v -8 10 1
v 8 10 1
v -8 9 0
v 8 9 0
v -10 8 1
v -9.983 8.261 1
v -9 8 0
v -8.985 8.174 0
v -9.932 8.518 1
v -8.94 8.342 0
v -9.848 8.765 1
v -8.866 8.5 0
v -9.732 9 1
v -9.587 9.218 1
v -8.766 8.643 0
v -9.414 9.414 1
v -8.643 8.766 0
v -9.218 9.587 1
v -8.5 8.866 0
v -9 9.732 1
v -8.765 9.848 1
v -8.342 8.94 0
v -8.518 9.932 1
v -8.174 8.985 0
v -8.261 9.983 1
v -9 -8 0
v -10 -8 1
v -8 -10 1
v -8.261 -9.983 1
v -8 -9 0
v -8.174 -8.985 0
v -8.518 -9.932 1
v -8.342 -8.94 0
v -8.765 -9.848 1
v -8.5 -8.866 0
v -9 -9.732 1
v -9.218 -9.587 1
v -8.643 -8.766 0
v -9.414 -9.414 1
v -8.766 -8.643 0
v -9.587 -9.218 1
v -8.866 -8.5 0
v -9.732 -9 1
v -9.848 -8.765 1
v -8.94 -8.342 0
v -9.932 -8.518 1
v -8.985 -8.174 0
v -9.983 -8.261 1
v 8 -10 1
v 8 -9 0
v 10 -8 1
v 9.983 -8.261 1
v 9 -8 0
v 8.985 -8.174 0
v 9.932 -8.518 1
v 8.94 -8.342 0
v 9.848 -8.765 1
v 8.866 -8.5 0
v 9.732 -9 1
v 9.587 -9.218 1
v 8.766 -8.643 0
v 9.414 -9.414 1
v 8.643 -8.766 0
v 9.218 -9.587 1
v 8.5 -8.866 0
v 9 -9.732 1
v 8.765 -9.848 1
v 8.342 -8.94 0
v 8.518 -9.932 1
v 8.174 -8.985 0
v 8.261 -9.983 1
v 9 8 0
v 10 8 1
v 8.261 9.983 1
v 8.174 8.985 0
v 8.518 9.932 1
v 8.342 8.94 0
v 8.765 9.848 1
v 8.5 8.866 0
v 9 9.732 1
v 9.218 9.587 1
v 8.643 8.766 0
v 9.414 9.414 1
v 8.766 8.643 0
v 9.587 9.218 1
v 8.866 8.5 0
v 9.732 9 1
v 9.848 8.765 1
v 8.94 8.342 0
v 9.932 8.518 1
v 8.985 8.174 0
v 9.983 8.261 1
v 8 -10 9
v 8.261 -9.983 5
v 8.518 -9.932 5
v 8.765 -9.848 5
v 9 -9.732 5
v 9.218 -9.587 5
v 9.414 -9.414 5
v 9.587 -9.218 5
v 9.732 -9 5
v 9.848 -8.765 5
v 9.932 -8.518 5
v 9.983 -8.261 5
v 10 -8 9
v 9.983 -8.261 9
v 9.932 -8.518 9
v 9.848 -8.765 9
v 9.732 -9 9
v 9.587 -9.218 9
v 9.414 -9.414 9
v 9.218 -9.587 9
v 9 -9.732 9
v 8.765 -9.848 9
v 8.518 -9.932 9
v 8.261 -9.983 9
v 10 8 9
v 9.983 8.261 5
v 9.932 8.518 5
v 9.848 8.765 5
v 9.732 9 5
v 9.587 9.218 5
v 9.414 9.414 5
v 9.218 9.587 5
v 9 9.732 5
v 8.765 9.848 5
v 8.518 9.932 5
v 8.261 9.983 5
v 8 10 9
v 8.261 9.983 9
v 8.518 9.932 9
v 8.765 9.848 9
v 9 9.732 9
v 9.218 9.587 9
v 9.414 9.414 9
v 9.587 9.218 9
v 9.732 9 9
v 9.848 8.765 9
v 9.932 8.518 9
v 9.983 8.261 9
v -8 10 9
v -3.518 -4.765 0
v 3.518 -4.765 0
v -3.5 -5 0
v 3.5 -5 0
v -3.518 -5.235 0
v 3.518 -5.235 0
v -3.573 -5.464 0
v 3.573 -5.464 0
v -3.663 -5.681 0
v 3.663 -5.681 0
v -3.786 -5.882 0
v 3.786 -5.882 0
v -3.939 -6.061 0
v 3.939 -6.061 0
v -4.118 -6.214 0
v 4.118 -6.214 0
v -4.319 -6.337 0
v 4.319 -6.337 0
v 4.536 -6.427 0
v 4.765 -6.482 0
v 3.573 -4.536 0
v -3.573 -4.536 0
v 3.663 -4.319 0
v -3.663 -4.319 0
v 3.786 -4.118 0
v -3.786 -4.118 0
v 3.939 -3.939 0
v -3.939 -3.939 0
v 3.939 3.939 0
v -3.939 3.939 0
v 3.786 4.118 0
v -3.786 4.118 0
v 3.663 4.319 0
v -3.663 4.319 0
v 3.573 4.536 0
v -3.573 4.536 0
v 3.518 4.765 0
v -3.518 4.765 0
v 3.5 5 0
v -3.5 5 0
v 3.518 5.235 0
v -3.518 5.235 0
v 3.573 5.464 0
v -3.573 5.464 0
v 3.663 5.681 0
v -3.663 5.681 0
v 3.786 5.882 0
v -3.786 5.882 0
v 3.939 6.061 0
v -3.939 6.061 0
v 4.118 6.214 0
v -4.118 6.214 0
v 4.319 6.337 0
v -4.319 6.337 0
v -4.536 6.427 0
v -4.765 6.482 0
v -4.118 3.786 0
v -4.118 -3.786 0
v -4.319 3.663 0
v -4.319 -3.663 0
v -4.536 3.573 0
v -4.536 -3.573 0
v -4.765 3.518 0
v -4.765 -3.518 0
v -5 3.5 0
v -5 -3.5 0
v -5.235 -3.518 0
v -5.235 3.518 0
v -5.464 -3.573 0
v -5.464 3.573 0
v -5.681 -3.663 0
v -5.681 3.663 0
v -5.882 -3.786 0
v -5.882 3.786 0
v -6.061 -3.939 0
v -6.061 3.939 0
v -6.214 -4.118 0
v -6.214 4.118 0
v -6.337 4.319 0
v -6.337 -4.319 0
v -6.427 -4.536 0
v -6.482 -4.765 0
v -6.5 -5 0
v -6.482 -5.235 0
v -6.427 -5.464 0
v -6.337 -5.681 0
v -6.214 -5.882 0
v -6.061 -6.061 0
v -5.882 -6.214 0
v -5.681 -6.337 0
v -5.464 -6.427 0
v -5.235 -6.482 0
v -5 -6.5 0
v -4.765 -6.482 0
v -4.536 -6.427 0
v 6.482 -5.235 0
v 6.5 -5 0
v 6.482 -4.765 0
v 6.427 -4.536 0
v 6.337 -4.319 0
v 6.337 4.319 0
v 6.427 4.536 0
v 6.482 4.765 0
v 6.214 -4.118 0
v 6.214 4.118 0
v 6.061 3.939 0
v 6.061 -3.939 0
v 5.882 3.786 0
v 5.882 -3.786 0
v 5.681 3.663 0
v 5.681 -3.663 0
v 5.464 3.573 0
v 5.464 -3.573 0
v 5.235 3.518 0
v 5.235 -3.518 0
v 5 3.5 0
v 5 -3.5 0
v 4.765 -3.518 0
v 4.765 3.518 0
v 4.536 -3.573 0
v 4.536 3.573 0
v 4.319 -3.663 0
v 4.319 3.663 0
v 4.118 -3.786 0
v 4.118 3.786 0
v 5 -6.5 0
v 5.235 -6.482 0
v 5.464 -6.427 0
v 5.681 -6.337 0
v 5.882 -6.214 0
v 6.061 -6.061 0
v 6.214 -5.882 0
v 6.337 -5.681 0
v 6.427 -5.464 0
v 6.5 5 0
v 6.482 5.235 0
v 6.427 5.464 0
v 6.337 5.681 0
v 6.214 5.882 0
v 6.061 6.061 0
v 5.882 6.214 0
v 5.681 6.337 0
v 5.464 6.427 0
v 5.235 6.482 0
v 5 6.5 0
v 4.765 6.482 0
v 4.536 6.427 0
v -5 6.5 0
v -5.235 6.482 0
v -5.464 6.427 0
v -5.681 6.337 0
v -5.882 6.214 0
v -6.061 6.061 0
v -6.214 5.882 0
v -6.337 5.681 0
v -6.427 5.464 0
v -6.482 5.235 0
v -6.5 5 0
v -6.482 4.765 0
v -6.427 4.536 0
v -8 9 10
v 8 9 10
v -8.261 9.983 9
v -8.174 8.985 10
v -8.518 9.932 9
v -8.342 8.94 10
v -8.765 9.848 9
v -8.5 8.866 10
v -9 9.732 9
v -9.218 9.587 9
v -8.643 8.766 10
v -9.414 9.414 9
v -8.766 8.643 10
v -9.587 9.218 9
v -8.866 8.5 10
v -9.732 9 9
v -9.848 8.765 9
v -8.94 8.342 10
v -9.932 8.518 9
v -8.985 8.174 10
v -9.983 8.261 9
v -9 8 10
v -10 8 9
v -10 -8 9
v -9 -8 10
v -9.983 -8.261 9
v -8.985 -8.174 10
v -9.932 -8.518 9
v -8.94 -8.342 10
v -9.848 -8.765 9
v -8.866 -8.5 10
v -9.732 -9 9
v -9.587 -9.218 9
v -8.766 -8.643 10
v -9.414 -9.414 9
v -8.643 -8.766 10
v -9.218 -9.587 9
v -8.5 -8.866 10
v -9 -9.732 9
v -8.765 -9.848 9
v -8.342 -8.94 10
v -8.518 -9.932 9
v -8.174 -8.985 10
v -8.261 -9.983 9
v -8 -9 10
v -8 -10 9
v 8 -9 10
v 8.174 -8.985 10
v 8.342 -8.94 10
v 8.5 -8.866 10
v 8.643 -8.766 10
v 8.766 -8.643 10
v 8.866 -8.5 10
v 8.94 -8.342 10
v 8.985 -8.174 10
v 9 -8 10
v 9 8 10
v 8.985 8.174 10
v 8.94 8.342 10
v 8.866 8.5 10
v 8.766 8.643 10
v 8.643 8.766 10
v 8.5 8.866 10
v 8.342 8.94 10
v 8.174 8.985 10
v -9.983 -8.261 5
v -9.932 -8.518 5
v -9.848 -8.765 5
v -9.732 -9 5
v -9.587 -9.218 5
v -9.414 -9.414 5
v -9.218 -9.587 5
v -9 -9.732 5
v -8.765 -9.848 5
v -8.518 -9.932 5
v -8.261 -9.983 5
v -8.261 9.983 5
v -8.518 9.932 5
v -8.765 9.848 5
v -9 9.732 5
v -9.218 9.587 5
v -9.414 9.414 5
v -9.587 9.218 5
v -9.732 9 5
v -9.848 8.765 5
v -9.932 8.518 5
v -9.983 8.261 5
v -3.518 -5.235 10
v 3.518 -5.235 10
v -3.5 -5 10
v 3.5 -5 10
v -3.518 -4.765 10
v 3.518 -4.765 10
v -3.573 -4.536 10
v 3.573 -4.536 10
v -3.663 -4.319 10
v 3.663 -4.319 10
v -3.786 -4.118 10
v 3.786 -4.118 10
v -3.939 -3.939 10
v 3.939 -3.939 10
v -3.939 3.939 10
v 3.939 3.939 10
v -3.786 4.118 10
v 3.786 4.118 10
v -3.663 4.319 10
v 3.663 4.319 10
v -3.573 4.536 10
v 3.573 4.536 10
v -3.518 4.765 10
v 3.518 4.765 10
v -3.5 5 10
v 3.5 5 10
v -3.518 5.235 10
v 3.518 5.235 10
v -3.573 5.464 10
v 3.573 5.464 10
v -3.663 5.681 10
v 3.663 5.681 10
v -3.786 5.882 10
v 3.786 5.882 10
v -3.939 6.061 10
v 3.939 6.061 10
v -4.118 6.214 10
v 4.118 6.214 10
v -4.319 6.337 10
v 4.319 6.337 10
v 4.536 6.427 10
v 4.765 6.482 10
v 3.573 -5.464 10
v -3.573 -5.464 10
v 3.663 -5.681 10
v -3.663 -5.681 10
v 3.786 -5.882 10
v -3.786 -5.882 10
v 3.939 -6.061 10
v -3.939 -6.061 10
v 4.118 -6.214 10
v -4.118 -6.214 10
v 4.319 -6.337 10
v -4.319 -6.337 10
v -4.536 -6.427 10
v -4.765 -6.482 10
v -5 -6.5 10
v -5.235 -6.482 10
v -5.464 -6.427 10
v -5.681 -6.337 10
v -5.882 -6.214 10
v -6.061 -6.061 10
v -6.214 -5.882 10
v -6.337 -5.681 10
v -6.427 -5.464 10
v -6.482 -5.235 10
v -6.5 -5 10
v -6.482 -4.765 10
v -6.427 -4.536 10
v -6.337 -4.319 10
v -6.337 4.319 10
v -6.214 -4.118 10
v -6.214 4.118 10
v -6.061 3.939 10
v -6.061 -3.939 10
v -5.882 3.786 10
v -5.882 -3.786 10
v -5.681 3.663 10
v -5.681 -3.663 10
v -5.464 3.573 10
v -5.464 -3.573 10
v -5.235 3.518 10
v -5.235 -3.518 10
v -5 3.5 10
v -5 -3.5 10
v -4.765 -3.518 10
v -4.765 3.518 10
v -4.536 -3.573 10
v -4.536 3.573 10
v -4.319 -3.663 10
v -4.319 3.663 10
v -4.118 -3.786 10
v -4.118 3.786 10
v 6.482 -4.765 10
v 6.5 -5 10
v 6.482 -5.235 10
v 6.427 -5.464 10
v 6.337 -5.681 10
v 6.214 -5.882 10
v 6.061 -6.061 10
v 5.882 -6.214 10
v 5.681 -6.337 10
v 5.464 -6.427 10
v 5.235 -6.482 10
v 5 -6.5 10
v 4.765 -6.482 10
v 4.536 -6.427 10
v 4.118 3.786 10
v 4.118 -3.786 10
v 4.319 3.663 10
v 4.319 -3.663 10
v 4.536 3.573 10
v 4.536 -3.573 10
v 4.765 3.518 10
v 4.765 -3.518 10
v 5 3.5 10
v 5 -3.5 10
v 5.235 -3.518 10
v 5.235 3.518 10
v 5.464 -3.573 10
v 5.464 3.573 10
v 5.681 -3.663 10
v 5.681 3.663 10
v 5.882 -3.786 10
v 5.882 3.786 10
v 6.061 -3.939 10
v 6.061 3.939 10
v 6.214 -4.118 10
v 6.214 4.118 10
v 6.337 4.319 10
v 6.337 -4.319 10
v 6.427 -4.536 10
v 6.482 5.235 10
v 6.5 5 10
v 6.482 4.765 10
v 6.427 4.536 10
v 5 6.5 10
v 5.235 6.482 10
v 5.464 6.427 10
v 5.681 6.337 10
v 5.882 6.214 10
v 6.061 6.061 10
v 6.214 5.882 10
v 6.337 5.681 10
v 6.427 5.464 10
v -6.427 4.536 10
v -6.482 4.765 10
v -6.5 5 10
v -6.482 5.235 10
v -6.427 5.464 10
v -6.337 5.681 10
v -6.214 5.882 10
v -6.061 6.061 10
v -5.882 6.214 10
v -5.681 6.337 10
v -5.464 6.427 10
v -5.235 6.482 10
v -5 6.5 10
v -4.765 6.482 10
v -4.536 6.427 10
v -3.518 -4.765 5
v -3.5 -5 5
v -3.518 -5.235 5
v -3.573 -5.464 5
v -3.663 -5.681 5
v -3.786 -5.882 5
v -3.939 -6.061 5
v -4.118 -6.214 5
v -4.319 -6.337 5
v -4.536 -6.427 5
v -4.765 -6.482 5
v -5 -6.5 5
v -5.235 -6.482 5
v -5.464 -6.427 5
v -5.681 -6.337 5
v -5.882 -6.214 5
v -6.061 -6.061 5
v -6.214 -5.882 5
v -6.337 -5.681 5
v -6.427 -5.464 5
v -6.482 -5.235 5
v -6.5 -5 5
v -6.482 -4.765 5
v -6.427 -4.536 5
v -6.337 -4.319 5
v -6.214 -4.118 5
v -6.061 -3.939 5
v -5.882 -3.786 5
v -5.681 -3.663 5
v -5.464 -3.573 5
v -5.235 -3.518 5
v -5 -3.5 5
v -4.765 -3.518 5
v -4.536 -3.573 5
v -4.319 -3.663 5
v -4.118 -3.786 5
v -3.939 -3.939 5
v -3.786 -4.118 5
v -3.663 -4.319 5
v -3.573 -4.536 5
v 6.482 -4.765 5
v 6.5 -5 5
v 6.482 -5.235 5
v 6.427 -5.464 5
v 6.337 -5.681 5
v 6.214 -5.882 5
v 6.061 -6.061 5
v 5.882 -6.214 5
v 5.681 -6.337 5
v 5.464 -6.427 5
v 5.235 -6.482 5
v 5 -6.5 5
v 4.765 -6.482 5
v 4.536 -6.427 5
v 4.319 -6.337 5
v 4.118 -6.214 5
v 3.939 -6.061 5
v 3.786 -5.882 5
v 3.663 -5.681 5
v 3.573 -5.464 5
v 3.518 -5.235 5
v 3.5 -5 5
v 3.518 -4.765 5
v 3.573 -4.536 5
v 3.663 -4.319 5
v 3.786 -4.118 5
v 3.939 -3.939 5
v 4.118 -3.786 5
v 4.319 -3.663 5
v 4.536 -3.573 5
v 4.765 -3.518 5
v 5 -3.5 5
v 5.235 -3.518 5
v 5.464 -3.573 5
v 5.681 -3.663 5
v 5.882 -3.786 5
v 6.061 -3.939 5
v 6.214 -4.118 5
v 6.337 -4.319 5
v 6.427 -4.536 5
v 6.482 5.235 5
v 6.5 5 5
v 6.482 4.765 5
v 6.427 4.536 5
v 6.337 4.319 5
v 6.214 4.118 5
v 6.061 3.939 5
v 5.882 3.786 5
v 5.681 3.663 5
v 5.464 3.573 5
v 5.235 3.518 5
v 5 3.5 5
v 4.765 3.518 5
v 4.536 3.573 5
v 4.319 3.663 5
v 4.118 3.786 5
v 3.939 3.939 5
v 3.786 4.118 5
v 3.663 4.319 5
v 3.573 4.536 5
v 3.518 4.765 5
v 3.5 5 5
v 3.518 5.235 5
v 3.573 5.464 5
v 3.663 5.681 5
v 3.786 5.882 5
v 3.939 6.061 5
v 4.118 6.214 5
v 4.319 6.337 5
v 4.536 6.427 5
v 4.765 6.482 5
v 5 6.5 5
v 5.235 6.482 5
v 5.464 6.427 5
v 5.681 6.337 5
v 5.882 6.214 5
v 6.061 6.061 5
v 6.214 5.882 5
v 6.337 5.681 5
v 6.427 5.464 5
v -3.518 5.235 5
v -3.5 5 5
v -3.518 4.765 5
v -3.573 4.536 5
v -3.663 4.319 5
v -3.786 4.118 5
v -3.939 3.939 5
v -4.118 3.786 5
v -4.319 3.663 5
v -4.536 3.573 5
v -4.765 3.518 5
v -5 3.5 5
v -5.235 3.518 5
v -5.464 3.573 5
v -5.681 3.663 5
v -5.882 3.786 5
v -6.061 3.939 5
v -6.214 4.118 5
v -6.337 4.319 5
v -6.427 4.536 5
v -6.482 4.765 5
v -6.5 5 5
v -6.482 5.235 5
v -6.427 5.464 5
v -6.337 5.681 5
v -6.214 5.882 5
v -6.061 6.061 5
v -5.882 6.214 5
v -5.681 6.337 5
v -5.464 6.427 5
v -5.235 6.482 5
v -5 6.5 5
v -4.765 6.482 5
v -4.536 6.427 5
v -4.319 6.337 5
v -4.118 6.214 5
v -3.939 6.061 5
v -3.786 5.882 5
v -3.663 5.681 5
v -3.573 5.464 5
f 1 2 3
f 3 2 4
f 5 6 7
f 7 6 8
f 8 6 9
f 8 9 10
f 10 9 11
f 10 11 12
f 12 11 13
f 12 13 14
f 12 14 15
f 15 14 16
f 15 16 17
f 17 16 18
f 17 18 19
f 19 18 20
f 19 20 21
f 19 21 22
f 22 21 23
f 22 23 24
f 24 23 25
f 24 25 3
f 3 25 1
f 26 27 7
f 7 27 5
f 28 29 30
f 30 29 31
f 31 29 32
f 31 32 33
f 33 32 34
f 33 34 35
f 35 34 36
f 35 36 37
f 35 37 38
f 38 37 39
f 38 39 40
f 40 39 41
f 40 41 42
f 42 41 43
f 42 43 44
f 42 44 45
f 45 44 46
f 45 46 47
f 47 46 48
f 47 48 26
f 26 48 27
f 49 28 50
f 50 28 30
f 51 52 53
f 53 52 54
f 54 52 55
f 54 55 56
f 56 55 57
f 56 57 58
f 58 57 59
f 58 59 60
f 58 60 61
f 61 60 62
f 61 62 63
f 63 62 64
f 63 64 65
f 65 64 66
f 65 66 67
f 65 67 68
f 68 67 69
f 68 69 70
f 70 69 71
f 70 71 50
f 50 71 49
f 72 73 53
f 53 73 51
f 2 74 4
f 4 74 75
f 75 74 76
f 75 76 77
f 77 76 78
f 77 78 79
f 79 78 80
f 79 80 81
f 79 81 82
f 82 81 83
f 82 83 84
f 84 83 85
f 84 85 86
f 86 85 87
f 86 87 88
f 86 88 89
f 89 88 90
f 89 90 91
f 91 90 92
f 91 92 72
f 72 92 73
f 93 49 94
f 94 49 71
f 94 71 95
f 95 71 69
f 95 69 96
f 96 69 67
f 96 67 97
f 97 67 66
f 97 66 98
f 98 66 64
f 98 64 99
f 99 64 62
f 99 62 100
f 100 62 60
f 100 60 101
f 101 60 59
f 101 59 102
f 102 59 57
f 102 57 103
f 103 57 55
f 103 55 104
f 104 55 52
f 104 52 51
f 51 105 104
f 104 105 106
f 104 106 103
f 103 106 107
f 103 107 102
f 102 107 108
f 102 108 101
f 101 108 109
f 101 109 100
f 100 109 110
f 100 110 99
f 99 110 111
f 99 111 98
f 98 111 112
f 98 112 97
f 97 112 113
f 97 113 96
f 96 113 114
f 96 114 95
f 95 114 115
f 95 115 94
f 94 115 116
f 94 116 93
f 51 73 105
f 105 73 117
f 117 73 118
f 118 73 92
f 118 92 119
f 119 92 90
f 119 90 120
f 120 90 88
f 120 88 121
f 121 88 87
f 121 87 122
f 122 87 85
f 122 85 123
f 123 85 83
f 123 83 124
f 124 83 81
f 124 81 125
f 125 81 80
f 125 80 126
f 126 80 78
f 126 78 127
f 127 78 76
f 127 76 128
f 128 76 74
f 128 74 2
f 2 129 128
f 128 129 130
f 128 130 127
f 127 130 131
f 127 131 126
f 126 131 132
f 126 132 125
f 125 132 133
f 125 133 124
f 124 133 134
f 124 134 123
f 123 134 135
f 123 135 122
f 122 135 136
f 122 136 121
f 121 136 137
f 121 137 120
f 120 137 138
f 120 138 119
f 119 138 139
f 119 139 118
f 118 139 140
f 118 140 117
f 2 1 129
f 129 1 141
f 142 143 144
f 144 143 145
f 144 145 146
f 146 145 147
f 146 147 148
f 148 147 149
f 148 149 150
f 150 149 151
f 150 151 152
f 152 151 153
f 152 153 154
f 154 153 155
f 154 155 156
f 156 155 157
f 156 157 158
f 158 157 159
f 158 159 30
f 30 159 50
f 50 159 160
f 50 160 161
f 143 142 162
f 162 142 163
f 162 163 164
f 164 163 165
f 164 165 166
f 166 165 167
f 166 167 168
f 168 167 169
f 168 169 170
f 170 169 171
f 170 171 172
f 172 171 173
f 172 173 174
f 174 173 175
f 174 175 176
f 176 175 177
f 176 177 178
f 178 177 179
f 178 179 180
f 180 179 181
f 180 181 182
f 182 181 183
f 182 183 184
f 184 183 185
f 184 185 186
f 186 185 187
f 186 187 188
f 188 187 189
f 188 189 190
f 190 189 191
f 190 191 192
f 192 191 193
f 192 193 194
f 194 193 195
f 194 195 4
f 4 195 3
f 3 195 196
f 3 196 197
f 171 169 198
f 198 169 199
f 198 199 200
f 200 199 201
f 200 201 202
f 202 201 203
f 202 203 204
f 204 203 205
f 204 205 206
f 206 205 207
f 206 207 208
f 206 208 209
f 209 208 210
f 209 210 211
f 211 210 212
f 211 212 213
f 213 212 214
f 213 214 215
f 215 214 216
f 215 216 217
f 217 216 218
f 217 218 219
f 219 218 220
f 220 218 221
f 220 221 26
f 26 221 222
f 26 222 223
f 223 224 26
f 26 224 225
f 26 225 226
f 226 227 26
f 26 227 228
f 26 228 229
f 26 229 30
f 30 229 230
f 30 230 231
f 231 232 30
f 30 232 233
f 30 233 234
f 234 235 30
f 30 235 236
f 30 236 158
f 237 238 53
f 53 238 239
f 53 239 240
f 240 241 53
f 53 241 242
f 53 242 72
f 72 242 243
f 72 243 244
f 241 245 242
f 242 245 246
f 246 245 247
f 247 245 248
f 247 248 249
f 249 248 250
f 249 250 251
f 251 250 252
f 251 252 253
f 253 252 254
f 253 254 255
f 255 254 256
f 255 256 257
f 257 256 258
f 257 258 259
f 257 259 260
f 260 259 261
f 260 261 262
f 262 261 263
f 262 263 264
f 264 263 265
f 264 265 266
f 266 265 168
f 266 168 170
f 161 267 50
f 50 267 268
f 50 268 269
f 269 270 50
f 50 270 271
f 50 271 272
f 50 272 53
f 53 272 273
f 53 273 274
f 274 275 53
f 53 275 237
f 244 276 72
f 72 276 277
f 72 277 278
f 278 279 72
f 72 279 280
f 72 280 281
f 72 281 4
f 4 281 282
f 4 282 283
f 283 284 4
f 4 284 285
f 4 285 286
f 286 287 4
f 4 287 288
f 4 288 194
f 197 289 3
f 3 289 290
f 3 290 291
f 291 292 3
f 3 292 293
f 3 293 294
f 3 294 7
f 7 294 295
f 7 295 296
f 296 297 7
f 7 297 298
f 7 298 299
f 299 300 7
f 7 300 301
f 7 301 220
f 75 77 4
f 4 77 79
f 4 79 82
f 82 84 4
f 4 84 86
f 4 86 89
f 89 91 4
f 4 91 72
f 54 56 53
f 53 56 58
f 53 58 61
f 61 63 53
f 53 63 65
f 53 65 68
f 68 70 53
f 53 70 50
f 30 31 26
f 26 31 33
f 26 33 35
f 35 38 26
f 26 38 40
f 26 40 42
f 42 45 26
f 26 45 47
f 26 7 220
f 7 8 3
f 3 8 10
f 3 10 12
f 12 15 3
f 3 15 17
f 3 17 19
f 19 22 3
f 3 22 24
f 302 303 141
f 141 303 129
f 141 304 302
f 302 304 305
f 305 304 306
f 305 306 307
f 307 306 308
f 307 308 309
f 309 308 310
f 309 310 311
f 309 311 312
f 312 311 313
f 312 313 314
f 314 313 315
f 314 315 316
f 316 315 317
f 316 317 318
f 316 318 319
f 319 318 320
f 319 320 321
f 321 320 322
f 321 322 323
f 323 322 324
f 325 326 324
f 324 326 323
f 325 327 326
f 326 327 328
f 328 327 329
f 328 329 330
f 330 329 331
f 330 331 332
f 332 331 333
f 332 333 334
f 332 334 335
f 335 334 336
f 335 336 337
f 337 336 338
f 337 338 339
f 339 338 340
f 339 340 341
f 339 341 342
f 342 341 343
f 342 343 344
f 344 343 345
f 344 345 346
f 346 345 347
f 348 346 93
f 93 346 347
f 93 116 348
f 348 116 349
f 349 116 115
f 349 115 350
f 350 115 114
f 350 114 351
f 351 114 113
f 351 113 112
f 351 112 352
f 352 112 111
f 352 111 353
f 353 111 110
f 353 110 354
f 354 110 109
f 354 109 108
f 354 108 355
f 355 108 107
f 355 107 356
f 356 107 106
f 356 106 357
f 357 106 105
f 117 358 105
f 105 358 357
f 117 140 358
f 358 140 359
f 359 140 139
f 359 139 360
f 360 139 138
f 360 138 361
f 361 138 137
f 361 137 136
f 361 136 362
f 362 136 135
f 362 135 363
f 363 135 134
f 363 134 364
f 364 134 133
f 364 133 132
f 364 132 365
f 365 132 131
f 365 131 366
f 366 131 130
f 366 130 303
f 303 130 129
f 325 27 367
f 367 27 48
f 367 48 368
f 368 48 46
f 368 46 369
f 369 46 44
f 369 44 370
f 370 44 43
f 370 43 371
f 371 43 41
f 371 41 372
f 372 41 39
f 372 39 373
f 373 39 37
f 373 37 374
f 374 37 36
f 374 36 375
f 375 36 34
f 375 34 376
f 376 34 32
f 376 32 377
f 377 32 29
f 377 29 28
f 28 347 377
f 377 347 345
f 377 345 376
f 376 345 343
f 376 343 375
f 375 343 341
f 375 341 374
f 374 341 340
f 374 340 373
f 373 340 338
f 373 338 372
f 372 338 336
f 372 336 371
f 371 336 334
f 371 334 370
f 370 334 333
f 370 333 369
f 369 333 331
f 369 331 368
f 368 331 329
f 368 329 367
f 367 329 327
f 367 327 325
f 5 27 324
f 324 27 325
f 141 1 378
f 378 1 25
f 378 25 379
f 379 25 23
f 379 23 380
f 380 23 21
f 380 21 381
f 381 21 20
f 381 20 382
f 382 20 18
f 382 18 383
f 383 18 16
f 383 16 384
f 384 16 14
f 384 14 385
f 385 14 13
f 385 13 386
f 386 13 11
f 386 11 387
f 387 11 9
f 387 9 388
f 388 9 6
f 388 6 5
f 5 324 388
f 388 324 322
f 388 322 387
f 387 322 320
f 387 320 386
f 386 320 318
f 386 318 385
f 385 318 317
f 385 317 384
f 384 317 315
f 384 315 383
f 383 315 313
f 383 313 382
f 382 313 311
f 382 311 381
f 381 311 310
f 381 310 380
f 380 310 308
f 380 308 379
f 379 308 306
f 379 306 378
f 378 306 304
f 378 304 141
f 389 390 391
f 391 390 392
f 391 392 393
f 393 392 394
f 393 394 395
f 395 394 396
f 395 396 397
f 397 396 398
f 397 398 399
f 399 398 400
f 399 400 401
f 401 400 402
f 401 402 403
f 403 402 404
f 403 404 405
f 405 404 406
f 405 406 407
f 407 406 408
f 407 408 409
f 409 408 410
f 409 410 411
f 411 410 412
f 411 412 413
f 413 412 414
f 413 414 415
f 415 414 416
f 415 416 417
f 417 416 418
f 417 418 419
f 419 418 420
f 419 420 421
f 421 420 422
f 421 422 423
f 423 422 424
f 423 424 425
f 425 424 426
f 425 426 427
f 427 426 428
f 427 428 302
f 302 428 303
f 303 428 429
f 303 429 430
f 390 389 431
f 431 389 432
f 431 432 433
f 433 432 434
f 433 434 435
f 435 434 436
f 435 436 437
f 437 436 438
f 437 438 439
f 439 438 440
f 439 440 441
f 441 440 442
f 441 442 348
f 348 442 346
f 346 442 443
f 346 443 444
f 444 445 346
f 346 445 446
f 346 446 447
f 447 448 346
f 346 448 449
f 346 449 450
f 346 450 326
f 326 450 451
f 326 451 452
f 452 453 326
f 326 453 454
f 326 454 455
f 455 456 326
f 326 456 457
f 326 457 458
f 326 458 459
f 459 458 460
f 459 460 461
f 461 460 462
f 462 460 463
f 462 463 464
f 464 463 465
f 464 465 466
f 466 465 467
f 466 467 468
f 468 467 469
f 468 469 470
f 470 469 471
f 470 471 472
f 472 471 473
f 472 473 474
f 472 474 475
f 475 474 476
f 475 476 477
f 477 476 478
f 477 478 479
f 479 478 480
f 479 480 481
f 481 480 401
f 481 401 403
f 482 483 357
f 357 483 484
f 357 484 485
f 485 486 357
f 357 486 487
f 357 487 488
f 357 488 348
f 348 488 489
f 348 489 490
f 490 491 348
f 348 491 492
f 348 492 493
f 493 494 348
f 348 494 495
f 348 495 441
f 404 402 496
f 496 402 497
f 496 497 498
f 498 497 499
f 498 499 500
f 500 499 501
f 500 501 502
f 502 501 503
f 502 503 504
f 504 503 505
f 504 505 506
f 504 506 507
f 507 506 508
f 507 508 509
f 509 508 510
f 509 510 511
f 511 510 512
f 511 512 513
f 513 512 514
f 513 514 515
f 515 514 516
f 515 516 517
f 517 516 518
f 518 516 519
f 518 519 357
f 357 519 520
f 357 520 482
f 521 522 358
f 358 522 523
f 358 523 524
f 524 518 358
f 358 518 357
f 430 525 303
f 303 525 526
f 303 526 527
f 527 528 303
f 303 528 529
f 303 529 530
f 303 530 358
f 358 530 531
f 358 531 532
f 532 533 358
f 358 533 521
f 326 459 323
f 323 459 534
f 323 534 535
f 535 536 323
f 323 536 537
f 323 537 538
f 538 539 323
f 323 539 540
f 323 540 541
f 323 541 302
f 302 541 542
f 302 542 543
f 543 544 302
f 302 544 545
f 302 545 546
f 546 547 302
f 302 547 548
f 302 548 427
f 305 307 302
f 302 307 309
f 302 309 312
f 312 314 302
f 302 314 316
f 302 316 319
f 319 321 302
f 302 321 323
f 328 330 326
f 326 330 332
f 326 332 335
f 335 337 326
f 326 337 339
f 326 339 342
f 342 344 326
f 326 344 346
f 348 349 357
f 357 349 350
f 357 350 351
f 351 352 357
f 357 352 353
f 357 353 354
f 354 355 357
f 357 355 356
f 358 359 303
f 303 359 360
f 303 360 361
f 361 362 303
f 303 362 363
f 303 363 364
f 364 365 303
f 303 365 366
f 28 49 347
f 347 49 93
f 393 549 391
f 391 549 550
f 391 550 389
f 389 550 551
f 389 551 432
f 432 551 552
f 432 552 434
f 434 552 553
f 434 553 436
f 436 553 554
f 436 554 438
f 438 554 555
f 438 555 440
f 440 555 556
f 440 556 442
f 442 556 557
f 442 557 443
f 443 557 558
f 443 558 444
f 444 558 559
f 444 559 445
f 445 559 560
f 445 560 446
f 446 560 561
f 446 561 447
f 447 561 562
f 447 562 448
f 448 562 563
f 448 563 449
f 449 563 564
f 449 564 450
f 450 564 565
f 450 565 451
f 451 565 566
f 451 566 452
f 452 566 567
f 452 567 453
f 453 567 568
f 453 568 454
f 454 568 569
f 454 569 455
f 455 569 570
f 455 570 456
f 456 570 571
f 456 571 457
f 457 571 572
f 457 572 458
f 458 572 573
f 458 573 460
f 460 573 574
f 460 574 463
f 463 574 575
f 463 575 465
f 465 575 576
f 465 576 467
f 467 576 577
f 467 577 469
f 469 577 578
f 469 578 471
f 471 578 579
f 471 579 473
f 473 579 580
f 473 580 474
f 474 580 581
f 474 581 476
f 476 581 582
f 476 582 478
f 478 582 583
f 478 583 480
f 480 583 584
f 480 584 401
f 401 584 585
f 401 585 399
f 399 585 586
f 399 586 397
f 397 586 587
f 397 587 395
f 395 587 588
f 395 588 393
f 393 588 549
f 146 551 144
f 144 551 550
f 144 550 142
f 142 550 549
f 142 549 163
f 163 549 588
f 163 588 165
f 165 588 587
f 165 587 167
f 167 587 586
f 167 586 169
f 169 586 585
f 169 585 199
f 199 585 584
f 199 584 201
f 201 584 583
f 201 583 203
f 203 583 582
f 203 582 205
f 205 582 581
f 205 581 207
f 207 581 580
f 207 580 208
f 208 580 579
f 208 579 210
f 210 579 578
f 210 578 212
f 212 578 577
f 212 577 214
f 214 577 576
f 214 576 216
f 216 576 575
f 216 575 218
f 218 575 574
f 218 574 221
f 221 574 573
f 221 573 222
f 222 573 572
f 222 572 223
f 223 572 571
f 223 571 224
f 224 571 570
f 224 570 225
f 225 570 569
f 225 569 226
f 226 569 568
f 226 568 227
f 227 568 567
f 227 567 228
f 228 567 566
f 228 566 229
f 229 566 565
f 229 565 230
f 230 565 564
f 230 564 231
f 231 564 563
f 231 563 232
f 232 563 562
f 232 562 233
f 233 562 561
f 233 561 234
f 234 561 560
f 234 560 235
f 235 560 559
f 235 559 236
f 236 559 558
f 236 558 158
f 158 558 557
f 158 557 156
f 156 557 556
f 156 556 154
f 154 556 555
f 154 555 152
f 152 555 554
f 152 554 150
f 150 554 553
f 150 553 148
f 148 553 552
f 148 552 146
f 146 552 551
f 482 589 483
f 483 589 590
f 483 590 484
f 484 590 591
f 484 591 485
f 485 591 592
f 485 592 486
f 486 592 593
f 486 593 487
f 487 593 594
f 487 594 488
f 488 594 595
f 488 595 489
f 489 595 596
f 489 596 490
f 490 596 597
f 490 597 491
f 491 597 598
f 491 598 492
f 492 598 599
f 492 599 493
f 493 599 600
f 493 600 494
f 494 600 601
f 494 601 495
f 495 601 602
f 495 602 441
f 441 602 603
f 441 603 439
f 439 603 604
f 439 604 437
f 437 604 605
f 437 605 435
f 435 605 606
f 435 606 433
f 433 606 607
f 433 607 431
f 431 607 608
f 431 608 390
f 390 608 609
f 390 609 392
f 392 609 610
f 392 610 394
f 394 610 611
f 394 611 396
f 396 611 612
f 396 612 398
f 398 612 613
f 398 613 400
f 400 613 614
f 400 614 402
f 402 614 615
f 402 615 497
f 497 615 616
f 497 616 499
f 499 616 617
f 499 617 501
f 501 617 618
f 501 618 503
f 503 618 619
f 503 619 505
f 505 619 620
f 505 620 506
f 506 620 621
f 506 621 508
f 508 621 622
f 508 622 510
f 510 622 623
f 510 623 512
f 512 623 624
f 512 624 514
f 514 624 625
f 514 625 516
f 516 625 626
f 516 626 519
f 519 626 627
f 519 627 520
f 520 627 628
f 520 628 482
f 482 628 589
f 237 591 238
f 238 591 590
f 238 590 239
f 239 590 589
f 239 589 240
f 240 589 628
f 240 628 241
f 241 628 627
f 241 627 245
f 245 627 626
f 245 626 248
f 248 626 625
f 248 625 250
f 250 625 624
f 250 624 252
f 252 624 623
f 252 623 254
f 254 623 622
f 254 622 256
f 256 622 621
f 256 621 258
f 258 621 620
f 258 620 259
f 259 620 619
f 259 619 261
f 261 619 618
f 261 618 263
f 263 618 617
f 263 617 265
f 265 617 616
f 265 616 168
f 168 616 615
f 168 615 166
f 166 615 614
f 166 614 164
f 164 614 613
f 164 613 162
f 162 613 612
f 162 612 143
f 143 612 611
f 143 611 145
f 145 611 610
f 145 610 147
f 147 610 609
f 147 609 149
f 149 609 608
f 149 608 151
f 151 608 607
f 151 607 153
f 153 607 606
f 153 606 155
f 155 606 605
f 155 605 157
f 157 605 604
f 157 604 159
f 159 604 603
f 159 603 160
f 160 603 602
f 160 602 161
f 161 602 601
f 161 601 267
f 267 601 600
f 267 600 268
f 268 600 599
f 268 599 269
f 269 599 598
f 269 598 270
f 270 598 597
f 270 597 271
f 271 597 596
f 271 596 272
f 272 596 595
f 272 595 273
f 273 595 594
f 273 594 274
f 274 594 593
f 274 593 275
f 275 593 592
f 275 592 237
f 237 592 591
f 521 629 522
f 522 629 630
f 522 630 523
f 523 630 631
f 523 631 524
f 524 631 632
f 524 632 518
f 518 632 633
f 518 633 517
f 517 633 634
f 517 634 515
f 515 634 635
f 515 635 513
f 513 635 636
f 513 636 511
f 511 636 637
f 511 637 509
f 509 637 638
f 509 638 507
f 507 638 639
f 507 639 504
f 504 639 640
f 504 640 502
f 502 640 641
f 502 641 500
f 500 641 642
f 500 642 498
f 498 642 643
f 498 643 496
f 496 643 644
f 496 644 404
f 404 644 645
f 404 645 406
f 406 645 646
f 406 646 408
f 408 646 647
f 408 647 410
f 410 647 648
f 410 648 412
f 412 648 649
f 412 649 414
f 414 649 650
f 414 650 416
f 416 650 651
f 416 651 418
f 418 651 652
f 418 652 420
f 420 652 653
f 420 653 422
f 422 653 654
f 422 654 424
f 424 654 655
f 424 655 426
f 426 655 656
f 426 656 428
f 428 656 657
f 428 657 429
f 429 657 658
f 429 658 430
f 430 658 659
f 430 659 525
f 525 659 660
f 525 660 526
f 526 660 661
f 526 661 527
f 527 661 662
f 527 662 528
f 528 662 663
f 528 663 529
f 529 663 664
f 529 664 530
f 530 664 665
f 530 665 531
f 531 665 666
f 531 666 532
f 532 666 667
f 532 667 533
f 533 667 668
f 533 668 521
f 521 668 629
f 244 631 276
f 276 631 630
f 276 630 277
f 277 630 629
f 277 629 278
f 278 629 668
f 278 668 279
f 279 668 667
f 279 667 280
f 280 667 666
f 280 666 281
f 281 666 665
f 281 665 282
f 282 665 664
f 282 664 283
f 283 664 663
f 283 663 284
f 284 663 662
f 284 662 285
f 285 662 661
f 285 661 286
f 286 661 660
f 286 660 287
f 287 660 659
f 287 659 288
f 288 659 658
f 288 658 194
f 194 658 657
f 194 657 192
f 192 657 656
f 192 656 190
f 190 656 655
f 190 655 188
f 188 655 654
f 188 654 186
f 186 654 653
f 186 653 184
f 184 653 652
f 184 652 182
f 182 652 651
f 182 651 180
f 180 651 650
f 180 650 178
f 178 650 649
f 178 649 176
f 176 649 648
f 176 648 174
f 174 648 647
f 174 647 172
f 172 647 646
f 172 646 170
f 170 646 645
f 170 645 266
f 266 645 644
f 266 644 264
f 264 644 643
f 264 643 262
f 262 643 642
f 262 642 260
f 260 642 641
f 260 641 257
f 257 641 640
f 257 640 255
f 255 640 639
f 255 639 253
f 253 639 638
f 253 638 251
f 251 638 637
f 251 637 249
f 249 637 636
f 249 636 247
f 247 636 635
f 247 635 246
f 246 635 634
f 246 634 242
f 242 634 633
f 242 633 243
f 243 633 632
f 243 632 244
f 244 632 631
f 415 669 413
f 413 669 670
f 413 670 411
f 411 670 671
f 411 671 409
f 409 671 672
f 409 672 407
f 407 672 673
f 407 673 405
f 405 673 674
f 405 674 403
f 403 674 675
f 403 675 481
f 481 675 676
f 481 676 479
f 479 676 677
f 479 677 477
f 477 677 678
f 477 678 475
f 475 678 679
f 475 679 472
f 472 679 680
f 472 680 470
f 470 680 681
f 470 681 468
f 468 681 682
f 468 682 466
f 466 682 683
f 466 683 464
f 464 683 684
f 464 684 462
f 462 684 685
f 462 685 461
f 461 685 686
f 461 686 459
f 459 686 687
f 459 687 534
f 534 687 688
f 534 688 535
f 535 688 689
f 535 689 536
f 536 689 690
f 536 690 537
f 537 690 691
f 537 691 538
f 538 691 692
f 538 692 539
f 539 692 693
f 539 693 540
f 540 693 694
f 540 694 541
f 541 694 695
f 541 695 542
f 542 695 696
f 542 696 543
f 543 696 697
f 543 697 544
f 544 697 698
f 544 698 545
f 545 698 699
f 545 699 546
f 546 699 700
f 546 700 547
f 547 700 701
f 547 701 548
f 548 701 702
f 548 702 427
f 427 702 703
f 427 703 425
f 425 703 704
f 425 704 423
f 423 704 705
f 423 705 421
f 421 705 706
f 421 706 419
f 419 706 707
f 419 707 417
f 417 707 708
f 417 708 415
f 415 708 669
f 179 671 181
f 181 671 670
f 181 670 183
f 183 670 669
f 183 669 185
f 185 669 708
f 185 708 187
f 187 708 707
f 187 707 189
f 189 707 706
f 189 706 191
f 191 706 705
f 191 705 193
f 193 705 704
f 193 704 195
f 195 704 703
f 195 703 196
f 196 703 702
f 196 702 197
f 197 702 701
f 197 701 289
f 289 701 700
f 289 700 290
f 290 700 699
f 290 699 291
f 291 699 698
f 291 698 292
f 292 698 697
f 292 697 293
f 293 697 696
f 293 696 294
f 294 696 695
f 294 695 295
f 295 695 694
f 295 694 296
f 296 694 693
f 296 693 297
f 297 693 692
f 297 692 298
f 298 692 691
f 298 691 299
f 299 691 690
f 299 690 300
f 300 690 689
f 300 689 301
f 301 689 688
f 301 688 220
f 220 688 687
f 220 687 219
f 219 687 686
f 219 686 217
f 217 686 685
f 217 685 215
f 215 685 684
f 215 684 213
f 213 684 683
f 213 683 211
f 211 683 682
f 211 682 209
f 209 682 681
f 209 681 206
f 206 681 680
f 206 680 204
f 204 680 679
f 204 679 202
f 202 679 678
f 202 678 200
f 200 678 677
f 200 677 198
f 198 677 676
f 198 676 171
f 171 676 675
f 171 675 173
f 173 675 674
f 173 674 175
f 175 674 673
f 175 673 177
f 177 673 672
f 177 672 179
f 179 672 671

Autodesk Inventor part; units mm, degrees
ref_plane "YZ Plane" through (0, 0, 0) normal (1, 0, 0) x (0, 1, 0)
ref_plane "XZ Plane" through (0, 0, 0) normal (0, 1, 0) x (-1, 0, 0)
ref_plane "XY Plane" through (0, 0, 0) normal (0, 0, 1) x (1, 0, 0)
sketch "스케치1" plane through (0, 0, 0) normal (0, 0, 1) x (1, 0, 0)
  line L0 (-10, -10) -> (10, -10)
  line L1 (10, -10) -> (10, 10)
  line L2 (10, 10) -> (-10, 10)
  line L3 (-10, 10) -> (-10, -10)
  line L4 (-10, -10) -> (10, 10) construction
  line L5 (10, -10) -> (-10, 10) construction
  circle A0 centre (-5, 5) radius 1.5
  circle A1 centre (5, 5) radius 1.5
  circle A2 centre (5, -5) radius 1.5
  circle A3 centre (-5, -5) radius 1.5
  point P0 (0, 0)
  dimension "d0" = 20
  dimension "d1" = 5
  dimension "d2" = 3
extrude "돌출1" add sketch "스케치1" along normal blind 10
fillet "모깎기1" radius 2 4 edges at (-10, 10, 5) (-10, -10, 5) (10, -10, 5) (10, 10, 5)
chamfer "모따기1" distance 1 angle 45 16 edges at (0, 10, 10) (-9.4142, 9.4142, 10) (-10, 0, 10) (-9.4142, -9.4142, 10) (0, -10, 10) (9.4142, -9.4142, 10) (10, 0, 10) (9.4142, 9.4142, 10) (0, 10, 0) (-9.4142, 9.4142, 0) (-10, 0, 0) (-9.4142, -9.4142, 0) (0, -10, 0) (9.4142, -9.4142, 0) (10, 0, 0) (9.4142, 9.4142, 0)
properties part number "RobotBaseConnector_3D 인쇄"
